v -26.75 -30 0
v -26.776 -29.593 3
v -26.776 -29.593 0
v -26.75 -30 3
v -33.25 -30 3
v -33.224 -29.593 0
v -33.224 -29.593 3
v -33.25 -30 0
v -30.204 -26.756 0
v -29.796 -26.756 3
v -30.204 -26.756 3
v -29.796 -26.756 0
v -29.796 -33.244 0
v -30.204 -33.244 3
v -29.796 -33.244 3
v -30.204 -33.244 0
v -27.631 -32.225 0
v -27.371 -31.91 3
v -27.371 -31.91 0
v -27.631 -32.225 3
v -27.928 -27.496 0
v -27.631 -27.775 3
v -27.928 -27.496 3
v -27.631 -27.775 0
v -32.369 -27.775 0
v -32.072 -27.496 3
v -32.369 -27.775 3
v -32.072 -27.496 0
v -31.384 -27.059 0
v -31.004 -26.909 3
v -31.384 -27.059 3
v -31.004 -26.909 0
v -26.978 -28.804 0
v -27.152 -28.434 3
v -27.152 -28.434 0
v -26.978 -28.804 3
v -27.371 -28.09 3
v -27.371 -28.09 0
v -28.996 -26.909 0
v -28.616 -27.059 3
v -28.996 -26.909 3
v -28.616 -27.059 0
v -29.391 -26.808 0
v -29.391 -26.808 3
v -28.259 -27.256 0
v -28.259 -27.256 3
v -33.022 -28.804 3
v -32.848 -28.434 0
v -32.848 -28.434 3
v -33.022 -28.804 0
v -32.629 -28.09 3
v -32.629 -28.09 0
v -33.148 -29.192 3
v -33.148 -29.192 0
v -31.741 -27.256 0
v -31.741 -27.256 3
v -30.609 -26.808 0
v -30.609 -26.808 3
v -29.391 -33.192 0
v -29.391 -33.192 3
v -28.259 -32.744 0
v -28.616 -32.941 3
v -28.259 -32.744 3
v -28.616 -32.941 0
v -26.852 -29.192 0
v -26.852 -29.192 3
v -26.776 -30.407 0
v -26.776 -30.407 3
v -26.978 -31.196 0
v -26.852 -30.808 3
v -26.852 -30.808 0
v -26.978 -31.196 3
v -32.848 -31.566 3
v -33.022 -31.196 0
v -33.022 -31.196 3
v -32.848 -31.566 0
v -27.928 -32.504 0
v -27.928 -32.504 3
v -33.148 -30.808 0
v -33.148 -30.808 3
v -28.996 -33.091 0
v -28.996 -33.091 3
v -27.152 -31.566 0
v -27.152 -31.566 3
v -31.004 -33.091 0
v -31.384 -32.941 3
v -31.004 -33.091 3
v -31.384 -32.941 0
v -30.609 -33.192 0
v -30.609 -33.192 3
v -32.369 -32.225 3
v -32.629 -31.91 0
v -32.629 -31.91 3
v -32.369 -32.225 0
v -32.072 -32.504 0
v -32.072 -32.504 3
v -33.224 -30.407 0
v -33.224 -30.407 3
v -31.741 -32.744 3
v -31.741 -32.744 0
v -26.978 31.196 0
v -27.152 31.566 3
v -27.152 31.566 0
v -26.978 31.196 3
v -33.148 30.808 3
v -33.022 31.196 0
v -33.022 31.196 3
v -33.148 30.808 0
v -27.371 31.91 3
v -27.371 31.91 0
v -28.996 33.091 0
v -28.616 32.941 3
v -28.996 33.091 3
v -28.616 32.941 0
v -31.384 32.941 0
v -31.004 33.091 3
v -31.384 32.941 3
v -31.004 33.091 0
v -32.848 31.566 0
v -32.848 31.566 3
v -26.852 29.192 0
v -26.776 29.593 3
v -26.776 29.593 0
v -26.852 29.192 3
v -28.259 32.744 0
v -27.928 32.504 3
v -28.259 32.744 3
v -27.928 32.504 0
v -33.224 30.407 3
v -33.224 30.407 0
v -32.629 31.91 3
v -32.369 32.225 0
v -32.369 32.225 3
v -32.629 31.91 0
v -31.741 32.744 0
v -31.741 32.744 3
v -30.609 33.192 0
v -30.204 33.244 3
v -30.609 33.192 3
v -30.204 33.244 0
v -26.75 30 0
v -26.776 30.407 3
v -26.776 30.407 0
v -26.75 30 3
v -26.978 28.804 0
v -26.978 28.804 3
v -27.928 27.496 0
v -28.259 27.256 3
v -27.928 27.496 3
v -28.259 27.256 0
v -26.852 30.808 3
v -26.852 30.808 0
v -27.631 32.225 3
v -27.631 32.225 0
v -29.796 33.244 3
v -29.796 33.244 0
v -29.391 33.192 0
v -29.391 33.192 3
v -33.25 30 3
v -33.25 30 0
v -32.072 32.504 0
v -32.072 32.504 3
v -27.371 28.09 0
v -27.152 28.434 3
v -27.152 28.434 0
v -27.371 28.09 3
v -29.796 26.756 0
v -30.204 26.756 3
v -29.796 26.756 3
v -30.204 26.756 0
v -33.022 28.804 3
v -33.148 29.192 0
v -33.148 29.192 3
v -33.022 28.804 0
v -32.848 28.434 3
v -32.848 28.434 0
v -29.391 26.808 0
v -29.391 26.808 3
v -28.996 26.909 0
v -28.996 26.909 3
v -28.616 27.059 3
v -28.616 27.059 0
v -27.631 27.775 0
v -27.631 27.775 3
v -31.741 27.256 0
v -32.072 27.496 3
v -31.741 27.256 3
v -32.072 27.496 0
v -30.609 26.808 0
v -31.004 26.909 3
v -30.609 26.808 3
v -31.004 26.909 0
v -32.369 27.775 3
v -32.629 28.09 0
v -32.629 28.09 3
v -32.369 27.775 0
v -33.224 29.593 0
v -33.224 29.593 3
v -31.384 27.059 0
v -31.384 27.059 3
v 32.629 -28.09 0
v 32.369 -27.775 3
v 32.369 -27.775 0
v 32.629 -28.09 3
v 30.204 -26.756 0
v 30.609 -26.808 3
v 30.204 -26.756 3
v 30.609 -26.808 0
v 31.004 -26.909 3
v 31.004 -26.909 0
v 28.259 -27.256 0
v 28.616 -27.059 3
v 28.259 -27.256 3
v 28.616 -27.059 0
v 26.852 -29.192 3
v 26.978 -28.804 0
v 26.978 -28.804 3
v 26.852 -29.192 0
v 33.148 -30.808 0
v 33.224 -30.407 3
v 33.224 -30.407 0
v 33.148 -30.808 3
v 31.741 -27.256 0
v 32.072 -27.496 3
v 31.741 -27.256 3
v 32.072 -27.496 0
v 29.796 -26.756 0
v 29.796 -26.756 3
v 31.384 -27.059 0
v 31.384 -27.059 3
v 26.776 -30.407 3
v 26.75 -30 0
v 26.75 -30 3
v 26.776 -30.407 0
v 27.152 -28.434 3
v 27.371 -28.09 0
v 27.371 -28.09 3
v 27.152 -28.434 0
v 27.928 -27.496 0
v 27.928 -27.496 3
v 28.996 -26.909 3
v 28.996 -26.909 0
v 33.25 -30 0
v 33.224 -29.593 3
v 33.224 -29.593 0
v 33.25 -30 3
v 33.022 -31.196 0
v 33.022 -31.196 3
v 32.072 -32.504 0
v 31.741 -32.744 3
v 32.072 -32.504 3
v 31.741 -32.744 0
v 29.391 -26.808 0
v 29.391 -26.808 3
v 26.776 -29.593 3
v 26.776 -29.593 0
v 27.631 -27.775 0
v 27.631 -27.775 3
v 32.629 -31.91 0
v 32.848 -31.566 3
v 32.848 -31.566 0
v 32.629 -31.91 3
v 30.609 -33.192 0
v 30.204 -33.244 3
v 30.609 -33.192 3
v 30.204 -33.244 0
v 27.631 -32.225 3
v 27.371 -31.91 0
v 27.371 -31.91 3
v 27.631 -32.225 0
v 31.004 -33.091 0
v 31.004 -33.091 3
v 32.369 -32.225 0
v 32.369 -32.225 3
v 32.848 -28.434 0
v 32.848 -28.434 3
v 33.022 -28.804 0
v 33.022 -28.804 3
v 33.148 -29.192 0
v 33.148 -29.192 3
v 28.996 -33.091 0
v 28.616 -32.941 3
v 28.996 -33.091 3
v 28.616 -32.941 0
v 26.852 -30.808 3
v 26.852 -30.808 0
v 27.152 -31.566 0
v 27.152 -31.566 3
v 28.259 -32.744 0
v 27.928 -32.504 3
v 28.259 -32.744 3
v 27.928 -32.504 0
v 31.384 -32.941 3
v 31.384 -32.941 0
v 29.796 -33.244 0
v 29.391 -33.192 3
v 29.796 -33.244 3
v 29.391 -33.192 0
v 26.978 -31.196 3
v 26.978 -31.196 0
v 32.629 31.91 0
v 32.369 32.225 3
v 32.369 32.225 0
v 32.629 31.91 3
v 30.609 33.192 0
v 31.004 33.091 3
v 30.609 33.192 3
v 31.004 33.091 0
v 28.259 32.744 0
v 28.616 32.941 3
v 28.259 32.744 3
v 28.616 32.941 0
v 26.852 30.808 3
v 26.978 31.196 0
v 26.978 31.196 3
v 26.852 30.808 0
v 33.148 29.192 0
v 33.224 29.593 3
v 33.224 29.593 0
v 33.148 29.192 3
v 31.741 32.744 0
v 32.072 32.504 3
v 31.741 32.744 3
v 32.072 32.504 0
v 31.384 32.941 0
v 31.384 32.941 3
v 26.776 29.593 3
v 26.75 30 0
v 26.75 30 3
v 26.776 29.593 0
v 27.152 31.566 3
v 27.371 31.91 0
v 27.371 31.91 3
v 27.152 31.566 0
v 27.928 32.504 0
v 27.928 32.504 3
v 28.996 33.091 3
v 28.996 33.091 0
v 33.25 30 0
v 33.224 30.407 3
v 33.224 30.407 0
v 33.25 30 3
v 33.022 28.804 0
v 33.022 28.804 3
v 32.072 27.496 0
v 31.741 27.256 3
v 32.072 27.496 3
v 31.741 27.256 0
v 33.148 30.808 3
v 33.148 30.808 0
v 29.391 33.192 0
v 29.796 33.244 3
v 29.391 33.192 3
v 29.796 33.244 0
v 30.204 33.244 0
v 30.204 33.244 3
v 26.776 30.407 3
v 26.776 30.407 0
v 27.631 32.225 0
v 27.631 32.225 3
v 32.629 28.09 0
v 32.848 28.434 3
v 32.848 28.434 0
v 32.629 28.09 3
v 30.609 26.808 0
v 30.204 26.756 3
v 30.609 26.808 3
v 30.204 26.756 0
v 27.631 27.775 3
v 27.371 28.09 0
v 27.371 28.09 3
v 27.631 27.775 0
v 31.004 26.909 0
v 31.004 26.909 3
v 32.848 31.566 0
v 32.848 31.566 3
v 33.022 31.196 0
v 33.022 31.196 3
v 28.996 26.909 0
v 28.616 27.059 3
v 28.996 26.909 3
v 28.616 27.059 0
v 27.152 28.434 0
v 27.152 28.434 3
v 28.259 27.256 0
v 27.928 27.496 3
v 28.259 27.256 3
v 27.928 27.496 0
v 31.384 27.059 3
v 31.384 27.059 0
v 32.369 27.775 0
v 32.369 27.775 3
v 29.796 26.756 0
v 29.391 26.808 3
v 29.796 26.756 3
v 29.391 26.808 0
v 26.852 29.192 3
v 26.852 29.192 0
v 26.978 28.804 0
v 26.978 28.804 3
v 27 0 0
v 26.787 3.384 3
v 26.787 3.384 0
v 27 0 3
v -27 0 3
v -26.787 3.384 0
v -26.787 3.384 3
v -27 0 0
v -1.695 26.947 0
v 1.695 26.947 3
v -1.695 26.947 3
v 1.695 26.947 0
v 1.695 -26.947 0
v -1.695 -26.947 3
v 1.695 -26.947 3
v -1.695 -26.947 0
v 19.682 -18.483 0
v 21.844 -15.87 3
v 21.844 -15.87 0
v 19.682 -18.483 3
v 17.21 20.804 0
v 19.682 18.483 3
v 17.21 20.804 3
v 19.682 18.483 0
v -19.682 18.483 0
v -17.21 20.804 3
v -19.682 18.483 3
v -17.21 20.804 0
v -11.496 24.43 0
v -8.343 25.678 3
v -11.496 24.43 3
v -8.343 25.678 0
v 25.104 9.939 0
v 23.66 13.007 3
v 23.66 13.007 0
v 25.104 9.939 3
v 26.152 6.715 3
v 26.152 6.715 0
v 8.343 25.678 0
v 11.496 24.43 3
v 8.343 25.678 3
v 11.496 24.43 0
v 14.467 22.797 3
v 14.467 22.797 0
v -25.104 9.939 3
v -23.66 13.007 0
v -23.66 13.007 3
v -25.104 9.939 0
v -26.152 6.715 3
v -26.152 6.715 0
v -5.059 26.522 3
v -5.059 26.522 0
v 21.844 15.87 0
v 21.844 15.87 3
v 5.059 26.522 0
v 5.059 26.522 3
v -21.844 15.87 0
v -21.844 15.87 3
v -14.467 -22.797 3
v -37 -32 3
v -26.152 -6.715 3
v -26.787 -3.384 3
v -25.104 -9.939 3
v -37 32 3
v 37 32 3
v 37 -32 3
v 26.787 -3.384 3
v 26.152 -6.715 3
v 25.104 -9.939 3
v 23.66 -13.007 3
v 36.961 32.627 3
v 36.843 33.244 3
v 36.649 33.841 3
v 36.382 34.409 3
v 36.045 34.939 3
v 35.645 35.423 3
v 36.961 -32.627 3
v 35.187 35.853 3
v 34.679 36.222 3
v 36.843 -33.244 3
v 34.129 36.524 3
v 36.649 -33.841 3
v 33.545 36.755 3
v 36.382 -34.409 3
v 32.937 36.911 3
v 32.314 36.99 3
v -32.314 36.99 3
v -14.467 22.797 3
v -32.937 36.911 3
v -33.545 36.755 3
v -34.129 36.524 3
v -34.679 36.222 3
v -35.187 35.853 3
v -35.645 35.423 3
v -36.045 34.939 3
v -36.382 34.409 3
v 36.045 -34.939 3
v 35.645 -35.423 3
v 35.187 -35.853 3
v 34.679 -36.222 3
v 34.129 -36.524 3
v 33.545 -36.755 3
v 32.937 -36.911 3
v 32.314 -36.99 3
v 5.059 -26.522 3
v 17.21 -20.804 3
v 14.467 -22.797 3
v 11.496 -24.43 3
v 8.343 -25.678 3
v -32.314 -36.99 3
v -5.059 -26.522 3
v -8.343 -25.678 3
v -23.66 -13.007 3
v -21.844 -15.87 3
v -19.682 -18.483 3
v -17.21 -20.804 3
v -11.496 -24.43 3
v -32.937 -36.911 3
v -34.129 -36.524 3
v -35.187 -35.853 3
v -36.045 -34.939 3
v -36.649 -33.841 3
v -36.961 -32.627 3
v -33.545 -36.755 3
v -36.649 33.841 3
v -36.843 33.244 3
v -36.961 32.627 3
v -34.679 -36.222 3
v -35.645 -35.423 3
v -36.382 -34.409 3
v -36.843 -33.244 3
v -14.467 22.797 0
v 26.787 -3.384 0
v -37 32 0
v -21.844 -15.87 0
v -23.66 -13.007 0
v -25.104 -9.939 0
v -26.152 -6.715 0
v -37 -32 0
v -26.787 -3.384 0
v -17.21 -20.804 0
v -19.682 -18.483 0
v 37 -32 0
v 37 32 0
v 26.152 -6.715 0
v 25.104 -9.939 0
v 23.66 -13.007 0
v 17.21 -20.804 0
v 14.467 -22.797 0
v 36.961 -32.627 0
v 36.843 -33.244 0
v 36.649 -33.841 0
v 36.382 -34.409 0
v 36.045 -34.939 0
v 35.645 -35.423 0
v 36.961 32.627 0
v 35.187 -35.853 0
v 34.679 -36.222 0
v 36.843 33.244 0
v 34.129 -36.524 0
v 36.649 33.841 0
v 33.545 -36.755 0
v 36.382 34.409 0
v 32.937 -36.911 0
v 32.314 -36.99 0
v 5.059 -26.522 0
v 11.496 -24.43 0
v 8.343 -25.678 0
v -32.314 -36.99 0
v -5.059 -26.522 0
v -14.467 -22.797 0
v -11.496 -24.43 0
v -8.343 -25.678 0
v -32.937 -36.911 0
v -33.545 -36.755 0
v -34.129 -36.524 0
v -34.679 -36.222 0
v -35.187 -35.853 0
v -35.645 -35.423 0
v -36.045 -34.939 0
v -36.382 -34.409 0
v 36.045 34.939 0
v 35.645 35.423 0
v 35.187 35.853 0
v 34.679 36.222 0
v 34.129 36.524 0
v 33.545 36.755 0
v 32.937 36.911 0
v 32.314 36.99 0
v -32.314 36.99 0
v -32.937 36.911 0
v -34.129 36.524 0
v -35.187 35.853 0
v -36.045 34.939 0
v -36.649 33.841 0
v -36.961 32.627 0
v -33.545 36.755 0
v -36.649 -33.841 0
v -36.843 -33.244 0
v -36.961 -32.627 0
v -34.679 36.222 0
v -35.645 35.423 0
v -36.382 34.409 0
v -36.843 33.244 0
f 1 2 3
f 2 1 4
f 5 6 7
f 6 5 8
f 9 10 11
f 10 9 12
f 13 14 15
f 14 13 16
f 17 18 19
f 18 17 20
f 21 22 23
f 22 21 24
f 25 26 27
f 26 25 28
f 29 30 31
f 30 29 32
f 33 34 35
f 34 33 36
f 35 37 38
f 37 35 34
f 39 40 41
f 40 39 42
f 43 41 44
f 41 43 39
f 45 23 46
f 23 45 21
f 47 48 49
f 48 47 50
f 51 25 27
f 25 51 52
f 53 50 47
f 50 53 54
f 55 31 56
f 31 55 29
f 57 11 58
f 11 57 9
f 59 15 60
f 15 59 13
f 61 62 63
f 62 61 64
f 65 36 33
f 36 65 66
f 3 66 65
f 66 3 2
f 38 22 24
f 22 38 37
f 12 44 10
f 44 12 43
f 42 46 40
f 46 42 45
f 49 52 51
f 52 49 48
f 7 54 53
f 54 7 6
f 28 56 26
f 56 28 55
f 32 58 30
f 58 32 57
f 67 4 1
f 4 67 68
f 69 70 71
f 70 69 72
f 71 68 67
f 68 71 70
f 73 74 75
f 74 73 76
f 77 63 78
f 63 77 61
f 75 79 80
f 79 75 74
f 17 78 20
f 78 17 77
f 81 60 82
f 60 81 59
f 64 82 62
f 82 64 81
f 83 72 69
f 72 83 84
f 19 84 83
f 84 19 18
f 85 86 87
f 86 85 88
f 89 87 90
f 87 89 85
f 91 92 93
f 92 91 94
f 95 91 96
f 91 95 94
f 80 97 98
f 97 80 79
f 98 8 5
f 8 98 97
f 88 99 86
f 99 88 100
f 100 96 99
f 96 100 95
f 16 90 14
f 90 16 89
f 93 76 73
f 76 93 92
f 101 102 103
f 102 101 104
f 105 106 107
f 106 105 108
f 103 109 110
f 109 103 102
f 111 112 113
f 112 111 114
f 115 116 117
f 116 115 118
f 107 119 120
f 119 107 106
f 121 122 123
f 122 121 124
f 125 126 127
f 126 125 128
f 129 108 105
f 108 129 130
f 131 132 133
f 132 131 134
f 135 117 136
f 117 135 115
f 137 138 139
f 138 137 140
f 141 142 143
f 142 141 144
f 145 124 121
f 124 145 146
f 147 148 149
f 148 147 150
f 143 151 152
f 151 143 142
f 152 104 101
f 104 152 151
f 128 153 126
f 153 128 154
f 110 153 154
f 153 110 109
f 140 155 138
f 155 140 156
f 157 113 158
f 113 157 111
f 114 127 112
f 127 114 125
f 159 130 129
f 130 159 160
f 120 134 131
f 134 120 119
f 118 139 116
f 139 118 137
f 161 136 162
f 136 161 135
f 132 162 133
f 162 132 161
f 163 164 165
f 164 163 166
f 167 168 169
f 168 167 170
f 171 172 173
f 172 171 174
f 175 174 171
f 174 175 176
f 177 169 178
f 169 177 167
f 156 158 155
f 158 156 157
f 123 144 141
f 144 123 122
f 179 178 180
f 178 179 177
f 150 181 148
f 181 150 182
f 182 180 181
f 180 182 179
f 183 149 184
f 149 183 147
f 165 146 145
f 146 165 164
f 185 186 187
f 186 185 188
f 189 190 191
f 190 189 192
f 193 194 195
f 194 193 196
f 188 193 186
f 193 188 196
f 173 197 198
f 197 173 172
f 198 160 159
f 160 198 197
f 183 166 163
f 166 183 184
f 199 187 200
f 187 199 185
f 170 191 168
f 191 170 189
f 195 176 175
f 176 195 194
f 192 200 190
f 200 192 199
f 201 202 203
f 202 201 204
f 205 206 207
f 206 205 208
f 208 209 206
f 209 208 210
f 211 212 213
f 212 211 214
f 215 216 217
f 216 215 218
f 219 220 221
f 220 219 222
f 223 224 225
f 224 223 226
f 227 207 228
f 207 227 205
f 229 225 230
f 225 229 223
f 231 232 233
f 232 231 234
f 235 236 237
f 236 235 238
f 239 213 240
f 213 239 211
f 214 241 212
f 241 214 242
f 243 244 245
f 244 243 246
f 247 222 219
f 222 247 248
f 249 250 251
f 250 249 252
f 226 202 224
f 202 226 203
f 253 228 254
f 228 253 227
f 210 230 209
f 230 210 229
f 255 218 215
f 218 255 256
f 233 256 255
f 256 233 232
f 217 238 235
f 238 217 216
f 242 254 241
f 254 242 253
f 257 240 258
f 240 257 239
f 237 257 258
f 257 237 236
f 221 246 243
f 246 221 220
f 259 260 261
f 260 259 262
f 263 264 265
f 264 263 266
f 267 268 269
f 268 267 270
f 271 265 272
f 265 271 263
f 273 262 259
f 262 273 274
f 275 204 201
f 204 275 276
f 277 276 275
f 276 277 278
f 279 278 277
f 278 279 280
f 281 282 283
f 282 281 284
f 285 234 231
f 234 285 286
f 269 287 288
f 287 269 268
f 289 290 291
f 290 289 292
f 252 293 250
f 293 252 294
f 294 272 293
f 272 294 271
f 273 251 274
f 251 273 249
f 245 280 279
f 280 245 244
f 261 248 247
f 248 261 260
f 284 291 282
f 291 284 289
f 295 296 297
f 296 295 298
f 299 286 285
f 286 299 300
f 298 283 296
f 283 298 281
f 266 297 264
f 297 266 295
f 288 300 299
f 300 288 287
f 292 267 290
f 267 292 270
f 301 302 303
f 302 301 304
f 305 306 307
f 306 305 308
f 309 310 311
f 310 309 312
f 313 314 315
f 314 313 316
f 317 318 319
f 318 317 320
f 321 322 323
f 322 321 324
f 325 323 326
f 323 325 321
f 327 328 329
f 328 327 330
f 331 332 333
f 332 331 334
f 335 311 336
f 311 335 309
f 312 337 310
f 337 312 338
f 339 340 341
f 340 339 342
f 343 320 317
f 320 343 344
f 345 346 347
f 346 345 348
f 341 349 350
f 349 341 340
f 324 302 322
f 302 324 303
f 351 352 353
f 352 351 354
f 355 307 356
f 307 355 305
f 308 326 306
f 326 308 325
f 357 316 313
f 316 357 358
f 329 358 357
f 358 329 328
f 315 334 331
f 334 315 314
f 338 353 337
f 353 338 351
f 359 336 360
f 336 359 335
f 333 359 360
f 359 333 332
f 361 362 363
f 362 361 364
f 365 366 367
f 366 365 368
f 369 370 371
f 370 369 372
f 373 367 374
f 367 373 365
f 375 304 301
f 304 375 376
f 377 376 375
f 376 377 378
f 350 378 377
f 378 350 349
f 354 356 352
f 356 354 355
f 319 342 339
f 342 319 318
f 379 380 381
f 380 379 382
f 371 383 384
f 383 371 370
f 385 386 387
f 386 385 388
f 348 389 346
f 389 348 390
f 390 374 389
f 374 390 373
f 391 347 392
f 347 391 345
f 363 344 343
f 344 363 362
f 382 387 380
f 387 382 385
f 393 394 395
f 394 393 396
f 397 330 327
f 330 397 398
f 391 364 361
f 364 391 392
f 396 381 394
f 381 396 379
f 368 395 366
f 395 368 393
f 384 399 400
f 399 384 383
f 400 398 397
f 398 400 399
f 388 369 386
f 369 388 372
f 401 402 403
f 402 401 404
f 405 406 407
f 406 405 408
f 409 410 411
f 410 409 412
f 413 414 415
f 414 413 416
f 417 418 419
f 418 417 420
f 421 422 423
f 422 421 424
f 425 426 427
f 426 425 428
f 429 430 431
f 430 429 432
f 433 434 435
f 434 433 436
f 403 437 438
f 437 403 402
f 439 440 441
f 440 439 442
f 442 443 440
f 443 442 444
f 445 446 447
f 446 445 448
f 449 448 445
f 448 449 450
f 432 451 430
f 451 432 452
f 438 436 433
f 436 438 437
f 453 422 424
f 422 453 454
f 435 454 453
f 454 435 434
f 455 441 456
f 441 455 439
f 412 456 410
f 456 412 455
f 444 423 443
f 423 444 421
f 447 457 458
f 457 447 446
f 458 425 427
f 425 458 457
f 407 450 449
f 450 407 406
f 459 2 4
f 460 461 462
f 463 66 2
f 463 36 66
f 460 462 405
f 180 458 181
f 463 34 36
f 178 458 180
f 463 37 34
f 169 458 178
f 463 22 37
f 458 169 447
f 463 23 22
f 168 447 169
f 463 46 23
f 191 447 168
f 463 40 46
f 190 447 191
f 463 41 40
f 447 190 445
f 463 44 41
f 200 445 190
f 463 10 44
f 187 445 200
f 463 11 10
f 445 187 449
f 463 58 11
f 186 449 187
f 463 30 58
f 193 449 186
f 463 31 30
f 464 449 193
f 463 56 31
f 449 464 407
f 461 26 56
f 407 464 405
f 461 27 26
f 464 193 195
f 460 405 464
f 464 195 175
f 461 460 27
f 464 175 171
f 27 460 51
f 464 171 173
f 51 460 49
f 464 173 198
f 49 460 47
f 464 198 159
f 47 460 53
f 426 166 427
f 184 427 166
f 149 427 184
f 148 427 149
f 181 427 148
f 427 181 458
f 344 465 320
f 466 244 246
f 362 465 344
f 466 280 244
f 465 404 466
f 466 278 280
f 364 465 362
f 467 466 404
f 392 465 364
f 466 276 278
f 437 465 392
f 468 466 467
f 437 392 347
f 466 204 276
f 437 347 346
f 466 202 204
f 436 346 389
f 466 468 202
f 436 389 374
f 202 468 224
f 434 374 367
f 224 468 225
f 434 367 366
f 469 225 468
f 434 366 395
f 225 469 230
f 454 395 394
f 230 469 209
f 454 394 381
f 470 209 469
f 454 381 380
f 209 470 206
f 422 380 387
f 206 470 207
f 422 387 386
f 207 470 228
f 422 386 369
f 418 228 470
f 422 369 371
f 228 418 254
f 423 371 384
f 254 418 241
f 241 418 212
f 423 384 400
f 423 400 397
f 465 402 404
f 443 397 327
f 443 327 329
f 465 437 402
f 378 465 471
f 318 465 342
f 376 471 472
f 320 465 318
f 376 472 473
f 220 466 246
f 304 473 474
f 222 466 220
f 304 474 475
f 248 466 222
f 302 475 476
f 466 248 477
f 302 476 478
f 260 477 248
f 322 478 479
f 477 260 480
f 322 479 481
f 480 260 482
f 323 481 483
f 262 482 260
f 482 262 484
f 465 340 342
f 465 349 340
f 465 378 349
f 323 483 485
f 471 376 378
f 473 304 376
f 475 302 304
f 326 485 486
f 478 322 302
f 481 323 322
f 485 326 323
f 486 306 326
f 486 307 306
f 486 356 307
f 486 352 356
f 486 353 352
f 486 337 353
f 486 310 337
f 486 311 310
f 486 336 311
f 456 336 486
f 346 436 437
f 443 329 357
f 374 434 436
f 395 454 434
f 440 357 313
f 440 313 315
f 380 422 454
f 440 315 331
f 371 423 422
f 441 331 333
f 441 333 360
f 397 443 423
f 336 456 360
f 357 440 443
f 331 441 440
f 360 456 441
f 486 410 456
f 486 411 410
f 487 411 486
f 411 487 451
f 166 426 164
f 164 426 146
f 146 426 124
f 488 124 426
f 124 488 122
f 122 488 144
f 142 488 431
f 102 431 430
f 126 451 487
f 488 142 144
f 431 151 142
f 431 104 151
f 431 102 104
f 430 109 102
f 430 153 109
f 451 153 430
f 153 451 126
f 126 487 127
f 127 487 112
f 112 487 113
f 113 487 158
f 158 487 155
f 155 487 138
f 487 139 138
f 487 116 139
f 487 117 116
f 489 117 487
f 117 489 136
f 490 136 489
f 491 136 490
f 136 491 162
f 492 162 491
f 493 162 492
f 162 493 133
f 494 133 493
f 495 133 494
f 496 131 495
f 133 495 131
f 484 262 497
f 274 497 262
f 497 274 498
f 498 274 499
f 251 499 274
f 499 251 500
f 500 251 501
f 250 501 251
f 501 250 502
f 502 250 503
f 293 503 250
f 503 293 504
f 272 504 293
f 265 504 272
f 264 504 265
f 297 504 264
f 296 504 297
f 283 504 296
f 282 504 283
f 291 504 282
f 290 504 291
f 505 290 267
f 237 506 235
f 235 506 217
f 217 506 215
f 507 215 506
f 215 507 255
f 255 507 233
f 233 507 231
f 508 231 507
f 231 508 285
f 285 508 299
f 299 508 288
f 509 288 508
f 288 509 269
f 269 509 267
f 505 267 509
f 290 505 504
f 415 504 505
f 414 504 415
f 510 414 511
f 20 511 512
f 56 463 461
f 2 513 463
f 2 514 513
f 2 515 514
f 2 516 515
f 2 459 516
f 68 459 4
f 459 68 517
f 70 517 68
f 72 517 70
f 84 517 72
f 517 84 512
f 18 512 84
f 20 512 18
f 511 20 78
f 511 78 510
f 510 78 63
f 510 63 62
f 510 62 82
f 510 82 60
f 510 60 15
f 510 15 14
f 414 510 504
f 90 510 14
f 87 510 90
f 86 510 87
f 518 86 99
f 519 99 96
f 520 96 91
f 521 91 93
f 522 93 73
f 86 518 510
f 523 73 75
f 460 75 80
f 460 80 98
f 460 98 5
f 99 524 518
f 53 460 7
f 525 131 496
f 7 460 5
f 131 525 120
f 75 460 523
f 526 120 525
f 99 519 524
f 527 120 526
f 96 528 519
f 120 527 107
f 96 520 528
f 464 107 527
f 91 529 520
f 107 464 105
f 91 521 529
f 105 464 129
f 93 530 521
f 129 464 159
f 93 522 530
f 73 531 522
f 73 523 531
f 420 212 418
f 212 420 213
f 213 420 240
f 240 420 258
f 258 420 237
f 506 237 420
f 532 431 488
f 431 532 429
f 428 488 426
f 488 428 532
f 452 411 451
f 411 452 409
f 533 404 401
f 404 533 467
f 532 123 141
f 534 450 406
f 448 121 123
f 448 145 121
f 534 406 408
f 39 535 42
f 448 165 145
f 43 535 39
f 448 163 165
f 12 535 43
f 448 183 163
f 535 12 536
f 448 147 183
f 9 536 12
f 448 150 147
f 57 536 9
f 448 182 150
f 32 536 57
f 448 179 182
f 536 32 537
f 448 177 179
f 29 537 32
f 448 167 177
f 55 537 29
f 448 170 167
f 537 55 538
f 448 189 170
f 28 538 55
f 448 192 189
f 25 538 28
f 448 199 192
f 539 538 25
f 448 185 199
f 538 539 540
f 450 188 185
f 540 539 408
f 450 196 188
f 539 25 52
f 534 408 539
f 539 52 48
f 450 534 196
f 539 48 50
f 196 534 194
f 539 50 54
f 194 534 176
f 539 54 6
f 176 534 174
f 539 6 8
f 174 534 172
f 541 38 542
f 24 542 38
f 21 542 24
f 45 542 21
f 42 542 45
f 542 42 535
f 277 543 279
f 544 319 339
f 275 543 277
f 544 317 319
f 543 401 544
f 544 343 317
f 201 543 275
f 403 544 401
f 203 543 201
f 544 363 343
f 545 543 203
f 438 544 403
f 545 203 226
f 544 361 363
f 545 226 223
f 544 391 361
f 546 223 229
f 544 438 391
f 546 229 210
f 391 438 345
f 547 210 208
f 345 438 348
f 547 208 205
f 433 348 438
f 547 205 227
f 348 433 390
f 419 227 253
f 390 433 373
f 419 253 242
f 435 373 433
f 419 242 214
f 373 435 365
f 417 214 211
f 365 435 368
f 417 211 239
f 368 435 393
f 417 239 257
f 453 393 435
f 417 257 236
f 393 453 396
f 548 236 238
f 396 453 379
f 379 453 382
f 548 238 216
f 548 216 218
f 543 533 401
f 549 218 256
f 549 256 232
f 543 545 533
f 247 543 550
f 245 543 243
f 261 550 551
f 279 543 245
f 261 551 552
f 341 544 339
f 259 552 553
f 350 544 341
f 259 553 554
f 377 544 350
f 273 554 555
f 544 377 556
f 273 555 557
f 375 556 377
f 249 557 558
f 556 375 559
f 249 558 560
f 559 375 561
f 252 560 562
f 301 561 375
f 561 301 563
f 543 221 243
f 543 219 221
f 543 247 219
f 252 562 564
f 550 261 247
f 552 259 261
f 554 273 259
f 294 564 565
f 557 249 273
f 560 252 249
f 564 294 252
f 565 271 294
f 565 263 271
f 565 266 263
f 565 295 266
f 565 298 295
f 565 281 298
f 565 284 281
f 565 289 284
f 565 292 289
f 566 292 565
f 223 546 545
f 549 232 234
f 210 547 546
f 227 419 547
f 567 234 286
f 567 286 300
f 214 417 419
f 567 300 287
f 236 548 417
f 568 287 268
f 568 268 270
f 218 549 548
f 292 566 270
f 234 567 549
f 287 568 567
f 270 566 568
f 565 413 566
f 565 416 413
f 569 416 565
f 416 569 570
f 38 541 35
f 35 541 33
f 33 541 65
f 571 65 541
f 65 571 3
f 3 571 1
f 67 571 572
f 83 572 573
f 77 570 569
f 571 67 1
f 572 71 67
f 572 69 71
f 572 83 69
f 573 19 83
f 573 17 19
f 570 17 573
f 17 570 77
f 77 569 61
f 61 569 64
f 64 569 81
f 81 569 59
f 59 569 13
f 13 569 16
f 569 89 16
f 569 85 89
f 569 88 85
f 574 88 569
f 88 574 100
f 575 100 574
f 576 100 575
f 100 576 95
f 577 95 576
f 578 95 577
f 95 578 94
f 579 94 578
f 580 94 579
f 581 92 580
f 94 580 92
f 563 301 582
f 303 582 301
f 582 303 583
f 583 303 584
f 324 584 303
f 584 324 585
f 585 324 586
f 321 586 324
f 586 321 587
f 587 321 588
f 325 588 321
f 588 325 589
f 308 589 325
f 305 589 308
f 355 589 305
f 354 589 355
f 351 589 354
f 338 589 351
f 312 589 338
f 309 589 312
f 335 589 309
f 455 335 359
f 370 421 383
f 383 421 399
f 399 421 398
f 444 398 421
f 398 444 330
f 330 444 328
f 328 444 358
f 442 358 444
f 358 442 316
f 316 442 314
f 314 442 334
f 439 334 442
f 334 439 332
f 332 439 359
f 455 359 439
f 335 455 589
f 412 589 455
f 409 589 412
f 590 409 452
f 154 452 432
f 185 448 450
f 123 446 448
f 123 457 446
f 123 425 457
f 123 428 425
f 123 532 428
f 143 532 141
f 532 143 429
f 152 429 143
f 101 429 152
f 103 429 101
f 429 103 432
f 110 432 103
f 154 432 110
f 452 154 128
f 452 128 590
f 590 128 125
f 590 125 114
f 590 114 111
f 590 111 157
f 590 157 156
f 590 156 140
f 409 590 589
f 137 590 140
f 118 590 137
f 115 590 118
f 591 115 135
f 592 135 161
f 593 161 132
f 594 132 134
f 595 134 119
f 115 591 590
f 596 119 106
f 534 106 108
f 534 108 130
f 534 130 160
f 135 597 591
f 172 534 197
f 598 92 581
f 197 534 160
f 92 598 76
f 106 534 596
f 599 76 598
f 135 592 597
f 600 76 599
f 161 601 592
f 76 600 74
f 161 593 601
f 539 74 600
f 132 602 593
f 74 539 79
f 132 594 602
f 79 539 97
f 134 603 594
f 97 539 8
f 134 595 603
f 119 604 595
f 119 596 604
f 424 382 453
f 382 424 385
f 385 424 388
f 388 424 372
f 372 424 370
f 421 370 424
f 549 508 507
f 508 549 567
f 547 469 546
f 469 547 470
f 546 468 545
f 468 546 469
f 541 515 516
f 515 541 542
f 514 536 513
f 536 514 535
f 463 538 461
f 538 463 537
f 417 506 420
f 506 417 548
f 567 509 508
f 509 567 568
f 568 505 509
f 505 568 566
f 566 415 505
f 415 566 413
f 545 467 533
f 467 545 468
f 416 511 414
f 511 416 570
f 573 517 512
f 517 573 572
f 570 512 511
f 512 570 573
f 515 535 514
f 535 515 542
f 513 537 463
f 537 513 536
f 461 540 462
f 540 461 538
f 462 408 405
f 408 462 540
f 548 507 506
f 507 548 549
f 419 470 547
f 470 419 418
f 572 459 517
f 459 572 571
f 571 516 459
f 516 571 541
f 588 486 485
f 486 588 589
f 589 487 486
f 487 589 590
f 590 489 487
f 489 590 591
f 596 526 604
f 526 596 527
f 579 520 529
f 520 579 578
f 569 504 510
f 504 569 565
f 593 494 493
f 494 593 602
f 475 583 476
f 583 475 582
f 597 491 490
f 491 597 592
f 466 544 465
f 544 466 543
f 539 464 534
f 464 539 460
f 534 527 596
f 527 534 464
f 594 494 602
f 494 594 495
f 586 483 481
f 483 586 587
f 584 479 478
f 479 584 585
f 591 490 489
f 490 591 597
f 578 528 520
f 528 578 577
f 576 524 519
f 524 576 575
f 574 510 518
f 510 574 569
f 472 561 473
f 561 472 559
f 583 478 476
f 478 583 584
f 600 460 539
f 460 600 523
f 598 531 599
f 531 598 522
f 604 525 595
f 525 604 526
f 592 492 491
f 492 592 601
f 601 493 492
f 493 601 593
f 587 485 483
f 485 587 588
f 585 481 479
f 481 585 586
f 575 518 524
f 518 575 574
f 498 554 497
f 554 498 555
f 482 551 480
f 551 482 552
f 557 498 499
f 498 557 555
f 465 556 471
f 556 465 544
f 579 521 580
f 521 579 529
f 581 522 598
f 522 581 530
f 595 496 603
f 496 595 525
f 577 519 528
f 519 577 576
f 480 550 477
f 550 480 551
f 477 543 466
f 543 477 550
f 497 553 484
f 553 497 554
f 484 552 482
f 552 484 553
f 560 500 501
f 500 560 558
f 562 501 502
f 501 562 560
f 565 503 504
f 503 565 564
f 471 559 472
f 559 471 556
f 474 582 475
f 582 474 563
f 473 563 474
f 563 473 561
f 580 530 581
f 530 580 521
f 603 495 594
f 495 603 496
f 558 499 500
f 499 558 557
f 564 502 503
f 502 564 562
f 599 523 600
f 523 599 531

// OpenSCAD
$fn = 50;


difference() {
	union() {
		hull() {
			translate(v = [-32.0000000000, 32.0000000000, 0]) {
				cylinder(h = 3, r = 5);
			}
			translate(v = [32.0000000000, 32.0000000000, 0]) {
				cylinder(h = 3, r = 5);
			}
			translate(v = [-32.0000000000, -32.0000000000, 0]) {
				cylinder(h = 3, r = 5);
			}
			translate(v = [32.0000000000, -32.0000000000, 0]) {
				cylinder(h = 3, r = 5);
			}
		}
	}
	union() {
		#translate(v = [-30.0000000000, -30.0000000000, -100.0000000000]) {
			cylinder(h = 200, r = 3.2500000000);
		}
		#translate(v = [-30.0000000000, 30.0000000000, -100.0000000000]) {
			cylinder(h = 200, r = 3.2500000000);
		}
		#translate(v = [30.0000000000, -30.0000000000, -100.0000000000]) {
			cylinder(h = 200, r = 3.2500000000);
		}
		#translate(v = [30.0000000000, 30.0000000000, -100.0000000000]) {
			cylinder(h = 200, r = 3.2500000000);
		}
		#cylinder(h = 3, r = 27.0000000000);
	}
}
